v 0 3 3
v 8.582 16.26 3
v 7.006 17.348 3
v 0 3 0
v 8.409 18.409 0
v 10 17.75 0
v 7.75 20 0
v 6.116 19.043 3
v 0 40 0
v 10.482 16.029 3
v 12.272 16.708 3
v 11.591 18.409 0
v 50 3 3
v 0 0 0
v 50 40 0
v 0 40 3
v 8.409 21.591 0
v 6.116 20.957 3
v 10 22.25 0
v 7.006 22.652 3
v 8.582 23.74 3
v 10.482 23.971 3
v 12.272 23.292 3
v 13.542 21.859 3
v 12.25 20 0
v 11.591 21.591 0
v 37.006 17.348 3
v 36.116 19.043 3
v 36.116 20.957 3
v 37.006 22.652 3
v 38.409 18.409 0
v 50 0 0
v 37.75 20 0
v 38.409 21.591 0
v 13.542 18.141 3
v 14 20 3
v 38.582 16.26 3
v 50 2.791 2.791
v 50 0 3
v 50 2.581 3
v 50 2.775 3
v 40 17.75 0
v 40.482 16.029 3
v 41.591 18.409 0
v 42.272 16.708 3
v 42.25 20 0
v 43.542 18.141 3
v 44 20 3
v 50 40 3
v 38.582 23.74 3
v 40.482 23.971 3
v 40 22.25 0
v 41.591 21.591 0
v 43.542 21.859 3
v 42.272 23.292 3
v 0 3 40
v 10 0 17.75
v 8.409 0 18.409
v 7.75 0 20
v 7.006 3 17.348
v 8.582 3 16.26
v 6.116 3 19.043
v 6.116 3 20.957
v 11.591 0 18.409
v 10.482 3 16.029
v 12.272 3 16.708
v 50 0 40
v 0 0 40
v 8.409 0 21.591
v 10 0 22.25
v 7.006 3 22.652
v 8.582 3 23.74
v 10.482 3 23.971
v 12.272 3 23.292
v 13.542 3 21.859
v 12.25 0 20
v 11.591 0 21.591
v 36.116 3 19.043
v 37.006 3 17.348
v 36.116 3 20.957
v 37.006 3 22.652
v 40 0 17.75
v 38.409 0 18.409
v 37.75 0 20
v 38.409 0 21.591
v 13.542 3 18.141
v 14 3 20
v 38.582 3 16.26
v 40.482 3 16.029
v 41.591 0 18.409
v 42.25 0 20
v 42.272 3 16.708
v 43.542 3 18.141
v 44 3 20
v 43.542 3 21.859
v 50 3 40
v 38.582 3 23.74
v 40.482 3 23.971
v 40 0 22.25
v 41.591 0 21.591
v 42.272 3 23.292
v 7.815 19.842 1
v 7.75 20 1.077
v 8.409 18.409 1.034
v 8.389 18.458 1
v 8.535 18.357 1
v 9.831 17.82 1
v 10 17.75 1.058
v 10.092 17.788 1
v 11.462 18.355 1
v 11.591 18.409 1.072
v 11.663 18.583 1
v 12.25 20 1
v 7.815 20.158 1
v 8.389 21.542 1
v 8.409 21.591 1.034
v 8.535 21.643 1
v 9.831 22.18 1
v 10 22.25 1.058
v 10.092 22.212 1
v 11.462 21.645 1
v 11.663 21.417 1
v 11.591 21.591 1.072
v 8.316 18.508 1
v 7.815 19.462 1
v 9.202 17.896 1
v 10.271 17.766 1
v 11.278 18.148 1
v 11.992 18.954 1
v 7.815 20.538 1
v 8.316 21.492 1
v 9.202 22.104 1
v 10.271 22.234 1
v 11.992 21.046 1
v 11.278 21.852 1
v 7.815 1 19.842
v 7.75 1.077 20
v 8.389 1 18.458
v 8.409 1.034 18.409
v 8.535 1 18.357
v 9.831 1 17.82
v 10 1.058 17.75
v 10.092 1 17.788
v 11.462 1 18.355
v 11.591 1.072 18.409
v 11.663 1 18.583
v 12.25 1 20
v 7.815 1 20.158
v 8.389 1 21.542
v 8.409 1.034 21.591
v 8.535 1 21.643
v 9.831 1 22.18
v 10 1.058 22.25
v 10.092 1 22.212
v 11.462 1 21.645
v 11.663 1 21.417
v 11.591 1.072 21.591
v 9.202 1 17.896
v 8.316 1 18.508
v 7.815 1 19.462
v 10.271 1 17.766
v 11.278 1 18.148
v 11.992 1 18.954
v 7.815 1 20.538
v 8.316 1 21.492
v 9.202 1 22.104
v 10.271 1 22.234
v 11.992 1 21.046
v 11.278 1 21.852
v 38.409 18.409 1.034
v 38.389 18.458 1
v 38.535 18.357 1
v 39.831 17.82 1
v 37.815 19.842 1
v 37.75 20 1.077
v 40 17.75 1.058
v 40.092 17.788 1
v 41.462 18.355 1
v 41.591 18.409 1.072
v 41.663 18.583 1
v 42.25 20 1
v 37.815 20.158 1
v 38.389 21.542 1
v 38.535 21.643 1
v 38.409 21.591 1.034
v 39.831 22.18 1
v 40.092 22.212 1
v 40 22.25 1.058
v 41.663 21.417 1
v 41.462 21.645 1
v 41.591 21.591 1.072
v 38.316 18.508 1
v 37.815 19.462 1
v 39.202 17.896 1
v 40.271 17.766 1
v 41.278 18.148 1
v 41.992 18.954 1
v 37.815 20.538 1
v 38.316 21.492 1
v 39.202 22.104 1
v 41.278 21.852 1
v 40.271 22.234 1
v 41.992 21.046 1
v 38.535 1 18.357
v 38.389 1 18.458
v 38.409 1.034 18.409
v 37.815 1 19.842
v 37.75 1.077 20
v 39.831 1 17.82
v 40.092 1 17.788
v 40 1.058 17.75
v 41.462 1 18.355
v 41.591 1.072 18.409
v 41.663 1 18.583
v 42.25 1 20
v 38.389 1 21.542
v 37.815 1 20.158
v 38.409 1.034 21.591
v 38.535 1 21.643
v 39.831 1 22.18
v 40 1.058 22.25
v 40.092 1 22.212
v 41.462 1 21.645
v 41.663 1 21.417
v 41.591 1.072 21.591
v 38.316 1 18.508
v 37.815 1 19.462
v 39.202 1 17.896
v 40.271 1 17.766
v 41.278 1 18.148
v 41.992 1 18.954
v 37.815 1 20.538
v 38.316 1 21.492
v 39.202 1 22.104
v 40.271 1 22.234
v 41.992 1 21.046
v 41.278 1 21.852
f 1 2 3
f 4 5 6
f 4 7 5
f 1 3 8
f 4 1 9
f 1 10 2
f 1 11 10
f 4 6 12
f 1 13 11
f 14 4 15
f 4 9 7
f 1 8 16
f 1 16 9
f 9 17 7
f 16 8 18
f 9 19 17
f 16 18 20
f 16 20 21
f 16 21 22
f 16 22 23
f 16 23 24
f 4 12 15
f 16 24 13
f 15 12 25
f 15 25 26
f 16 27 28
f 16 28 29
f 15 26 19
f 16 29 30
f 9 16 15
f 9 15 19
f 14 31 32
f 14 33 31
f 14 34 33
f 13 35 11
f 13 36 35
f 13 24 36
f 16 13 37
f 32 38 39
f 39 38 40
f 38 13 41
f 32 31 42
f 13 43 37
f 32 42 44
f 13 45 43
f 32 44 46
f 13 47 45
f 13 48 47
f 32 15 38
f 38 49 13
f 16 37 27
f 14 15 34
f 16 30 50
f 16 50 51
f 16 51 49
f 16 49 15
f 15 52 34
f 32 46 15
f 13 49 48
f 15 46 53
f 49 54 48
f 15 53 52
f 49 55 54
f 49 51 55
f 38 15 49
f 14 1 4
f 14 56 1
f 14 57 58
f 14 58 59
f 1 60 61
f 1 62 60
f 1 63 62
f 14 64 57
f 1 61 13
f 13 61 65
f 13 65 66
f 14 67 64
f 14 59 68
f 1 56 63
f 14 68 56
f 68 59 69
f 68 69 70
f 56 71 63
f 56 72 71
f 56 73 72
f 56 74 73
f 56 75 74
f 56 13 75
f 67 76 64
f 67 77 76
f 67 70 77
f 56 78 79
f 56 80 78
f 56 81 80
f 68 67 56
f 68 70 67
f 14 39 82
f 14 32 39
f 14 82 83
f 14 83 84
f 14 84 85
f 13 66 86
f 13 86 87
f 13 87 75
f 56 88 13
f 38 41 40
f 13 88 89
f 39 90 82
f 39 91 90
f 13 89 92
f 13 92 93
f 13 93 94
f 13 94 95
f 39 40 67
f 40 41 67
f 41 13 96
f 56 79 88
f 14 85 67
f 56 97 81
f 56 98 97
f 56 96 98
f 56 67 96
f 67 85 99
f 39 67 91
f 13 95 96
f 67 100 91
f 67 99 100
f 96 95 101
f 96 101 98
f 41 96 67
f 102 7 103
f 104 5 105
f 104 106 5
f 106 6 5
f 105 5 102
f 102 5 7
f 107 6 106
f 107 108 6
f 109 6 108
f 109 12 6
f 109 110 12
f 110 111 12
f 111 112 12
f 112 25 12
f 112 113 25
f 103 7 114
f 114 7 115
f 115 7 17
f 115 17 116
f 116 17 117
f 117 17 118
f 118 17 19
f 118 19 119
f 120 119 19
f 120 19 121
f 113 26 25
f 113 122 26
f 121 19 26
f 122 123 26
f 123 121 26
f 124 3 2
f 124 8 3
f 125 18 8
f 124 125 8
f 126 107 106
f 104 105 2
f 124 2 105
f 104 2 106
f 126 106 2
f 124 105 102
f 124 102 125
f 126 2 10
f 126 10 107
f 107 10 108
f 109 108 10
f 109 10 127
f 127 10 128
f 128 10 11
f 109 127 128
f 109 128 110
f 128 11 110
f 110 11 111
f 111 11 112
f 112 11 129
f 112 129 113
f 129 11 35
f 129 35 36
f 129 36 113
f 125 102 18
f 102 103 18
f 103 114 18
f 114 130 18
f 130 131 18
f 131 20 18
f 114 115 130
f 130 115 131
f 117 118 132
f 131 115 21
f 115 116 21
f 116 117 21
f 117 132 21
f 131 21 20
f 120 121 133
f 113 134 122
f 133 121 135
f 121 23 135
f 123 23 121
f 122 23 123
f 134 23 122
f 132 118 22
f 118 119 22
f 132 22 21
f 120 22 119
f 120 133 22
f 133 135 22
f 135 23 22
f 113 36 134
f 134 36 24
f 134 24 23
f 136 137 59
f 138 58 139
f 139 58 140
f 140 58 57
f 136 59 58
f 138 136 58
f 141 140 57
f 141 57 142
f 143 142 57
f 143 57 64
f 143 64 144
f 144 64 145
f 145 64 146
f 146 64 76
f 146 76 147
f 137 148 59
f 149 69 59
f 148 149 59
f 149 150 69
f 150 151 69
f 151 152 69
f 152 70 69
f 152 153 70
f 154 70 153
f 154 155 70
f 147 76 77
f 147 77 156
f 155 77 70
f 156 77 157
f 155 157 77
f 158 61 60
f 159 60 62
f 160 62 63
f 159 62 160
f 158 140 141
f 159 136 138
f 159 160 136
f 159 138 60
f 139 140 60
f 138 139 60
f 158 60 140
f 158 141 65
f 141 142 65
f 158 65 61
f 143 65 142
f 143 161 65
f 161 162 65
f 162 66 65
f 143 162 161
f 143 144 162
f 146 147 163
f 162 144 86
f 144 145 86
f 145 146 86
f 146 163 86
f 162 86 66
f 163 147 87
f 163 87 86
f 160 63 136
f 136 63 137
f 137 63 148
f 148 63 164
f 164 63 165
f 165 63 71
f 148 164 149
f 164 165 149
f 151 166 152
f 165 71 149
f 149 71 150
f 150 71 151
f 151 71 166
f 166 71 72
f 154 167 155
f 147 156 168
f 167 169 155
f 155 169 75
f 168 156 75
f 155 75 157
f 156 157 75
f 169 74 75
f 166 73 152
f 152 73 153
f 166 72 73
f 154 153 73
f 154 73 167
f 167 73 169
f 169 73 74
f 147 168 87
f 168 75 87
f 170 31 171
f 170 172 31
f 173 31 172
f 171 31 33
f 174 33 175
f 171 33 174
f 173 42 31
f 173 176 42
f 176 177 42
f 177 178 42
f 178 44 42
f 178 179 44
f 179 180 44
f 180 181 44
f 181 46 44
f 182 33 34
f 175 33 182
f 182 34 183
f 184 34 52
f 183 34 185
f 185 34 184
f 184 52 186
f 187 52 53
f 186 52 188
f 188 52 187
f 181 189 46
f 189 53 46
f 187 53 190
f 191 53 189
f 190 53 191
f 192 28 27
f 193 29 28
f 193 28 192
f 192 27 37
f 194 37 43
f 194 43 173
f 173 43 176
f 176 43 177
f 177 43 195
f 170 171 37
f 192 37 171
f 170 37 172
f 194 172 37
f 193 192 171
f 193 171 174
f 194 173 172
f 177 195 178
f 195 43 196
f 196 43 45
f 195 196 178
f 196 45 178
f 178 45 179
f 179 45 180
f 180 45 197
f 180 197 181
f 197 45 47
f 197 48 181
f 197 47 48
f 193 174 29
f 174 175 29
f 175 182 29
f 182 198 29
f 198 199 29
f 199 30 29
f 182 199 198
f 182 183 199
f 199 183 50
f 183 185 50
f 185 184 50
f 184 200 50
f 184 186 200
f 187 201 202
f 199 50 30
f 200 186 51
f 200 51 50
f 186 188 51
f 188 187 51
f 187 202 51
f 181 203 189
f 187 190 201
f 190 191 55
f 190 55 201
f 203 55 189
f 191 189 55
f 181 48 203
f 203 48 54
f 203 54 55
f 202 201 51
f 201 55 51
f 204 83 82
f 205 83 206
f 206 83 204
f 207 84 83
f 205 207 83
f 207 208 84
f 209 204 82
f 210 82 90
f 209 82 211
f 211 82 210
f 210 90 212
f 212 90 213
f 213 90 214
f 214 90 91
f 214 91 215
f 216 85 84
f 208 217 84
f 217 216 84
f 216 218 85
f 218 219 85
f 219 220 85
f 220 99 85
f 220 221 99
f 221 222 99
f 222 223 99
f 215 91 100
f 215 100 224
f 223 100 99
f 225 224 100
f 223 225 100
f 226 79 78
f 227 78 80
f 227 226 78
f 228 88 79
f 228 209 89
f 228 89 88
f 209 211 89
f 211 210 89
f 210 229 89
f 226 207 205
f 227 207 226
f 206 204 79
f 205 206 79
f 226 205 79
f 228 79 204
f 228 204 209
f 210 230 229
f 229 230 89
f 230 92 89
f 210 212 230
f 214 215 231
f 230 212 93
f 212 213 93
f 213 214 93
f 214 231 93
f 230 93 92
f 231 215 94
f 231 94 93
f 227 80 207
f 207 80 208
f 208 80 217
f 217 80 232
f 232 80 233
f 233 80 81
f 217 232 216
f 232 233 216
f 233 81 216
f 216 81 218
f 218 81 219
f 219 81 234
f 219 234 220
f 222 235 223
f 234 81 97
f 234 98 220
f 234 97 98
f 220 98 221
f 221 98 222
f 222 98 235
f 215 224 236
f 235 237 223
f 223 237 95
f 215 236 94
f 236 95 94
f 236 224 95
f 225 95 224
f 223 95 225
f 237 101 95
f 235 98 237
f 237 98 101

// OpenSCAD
difference() {
    union() {
        cube([50, 40, 3]);
        cube([50, 3, 40]);
    }

    for (x = [10, 40]) {
        translate([x, 20, 0]) cylinder(d = 4.5, h = 3);
        translate([x, 20, 1]) cylinder(r1 = 2.25, r2 = 4, h = 2);

        translate([x, 3, 20]) rotate([90, 0, 0]) cylinder(d = 4.5, h = 3);
        translate([x, 3, 20]) rotate([90, 0, 0]) cylinder(r1 = 4, r2 = 2.25, h = 2);
    }
}
